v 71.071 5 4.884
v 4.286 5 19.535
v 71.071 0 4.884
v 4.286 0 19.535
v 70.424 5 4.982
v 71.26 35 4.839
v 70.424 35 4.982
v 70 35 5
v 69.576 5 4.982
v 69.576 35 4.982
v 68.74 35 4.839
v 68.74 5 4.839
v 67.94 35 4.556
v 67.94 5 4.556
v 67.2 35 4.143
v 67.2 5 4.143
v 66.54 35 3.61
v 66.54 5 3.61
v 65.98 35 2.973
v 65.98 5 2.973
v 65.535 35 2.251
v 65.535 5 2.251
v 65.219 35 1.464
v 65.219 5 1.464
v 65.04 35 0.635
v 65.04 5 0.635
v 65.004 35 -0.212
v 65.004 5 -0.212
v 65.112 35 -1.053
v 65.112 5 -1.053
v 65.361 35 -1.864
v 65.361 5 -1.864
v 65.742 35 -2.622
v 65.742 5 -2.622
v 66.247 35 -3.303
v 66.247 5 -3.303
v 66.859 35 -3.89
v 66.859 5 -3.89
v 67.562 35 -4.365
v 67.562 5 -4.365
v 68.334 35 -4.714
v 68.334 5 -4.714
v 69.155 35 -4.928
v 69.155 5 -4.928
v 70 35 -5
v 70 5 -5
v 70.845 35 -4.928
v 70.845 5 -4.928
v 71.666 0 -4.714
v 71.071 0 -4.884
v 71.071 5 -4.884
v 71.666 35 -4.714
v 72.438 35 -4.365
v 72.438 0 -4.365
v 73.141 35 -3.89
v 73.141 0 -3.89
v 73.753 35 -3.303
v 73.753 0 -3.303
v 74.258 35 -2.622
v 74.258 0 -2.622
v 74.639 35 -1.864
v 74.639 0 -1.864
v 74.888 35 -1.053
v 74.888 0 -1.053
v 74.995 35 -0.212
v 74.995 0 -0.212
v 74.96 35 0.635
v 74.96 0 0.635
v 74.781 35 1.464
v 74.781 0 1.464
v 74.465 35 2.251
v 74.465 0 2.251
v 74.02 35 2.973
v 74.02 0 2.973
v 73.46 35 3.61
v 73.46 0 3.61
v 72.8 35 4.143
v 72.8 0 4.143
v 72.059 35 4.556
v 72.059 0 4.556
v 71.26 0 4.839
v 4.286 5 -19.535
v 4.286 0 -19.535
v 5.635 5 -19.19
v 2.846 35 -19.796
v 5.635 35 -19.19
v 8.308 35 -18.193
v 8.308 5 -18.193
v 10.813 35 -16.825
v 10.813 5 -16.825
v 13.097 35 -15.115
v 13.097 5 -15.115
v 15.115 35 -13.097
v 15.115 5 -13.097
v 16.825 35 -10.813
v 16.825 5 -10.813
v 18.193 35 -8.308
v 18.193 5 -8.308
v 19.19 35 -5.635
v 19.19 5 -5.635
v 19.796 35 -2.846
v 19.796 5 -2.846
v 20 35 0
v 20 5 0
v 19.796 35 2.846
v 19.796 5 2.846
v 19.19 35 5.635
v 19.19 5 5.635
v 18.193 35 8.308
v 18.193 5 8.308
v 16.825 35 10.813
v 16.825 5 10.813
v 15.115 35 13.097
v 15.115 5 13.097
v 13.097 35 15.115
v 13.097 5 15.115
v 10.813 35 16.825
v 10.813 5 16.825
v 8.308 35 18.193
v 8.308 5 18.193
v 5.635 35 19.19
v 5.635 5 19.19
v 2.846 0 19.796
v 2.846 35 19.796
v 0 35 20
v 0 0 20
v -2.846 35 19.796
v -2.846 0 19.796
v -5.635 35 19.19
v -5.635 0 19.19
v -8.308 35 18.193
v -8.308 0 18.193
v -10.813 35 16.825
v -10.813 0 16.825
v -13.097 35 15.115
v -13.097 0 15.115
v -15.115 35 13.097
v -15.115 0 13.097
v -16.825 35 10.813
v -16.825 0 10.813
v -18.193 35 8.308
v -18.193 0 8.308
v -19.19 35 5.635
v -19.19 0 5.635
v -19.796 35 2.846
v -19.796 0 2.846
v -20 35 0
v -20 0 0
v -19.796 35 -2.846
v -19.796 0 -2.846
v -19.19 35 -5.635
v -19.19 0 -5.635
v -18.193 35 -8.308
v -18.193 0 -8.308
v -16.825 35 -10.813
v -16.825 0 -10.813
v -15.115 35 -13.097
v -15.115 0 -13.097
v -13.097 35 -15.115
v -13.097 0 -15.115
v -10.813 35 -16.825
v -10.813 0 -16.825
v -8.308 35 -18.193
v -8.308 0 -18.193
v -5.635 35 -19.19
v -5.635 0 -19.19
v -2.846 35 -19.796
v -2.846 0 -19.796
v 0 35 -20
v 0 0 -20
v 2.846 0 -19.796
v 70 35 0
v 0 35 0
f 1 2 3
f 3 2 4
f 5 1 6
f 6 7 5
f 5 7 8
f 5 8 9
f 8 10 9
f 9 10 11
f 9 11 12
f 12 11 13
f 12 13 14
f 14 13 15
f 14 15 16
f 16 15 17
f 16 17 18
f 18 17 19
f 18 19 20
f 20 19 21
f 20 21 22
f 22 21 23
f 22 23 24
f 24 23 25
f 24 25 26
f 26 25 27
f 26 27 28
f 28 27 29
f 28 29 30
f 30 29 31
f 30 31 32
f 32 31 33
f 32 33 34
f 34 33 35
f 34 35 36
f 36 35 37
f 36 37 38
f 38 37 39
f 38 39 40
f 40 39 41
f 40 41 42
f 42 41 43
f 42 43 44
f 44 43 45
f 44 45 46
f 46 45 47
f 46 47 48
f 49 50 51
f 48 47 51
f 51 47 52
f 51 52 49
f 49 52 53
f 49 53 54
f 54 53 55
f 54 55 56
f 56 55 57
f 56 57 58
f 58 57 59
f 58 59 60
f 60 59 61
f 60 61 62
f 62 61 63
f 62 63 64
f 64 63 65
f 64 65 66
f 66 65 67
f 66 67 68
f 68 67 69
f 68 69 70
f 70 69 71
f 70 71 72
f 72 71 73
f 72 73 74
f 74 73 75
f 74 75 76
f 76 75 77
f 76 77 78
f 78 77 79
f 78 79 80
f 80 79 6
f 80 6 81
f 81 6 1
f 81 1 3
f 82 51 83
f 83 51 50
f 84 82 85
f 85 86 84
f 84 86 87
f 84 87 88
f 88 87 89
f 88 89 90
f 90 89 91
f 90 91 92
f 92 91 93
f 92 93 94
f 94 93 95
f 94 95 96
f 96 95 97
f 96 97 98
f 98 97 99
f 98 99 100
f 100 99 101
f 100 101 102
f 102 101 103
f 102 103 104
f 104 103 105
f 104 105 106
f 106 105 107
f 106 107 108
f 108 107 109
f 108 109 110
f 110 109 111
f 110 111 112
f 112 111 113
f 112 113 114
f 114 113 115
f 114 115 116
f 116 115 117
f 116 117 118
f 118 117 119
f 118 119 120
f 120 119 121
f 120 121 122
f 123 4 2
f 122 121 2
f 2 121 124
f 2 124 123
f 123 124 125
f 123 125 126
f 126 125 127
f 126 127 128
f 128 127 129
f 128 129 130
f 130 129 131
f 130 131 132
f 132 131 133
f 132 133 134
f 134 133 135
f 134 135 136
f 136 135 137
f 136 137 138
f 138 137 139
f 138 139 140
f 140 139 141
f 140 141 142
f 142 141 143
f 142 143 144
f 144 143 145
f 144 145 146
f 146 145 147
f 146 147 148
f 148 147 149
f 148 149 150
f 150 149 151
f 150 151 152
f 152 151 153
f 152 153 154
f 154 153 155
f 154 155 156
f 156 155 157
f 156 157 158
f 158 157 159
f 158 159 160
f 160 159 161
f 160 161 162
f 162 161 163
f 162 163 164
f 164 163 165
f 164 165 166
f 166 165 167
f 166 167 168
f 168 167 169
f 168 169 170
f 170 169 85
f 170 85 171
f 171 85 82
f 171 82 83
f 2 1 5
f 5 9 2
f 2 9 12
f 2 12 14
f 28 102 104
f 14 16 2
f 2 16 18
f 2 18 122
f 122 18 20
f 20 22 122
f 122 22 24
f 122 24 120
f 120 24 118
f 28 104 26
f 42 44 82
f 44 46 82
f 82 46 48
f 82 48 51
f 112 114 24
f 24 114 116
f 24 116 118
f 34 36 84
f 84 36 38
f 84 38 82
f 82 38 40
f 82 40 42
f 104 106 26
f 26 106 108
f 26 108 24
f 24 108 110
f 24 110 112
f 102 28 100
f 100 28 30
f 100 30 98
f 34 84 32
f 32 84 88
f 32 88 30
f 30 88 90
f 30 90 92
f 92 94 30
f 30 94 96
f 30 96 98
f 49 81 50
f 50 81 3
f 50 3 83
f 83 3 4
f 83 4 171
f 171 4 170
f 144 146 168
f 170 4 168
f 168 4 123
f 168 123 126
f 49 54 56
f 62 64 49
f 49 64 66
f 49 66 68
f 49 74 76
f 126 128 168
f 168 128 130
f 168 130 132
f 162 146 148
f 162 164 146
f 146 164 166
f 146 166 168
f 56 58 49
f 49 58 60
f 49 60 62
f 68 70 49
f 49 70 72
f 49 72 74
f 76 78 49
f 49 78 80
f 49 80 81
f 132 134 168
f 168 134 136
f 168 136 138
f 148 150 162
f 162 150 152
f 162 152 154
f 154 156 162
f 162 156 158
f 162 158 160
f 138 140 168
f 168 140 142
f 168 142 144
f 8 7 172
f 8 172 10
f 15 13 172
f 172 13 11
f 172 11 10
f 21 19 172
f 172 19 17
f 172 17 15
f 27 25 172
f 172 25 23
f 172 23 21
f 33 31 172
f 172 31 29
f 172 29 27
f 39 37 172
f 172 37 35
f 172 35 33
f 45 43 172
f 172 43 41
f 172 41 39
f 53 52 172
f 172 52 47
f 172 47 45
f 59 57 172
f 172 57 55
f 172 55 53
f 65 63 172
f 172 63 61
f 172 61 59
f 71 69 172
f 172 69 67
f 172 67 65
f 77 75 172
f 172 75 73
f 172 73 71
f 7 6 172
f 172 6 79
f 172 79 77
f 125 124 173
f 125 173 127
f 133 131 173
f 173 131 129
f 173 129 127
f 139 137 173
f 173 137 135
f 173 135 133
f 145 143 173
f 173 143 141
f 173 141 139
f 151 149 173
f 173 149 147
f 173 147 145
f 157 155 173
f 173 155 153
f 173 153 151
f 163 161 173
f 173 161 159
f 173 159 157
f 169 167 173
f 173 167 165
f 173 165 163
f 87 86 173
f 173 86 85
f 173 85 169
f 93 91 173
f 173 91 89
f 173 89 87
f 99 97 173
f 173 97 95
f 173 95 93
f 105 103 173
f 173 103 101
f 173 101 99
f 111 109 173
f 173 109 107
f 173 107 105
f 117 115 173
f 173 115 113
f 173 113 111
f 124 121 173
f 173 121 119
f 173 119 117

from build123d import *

# Parameters (mm, degrees)
EXTRUDE_1_DEPTH = 5
SKETCH_2_R      = 20
SKETCH_2_R_2    = 5
EXTRUDE_2_DEPTH = 30


with BuildPart() as part:
    # 草图1 → 凸台-拉伸1 (new body)
    with BuildSketch(Plane(origin=(0, 0, 0), x_dir=(1, 0, 0), z_dir=(0, 1, 0))):
        with BuildLine():
            Line((71.071428571, 4.883855118), (4.285714272, 19.535420476))
            ThreePointArc((4.285714272, 19.535420476), (-20, 1.6e-07), (4.28571396, -19.535420545))
            Line((4.28571396, -19.535420545), (71.071428571, -4.883855118))
            ThreePointArc((71.071428571, -4.883855118), (75, 0), (71.071428571, 4.883855118))
        make_face()
    extrude(amount=EXTRUDE_1_DEPTH)

    # 草图2 → 凸台-拉伸2 (add)
    with BuildSketch(Plane(origin=(0, 5, 0), x_dir=(1, 0, 0), z_dir=(0, 1, 0))):
        with Locations(Location((0, 0, 0), (0, 0, 77.626374884))):
            Circle(SKETCH_2_R)
        with Locations(Location((70, 0, 0), (0, 0, 77.626374884))):
            Circle(SKETCH_2_R_2)
    extrude(amount=EXTRUDE_2_DEPTH)


solid = part.part
